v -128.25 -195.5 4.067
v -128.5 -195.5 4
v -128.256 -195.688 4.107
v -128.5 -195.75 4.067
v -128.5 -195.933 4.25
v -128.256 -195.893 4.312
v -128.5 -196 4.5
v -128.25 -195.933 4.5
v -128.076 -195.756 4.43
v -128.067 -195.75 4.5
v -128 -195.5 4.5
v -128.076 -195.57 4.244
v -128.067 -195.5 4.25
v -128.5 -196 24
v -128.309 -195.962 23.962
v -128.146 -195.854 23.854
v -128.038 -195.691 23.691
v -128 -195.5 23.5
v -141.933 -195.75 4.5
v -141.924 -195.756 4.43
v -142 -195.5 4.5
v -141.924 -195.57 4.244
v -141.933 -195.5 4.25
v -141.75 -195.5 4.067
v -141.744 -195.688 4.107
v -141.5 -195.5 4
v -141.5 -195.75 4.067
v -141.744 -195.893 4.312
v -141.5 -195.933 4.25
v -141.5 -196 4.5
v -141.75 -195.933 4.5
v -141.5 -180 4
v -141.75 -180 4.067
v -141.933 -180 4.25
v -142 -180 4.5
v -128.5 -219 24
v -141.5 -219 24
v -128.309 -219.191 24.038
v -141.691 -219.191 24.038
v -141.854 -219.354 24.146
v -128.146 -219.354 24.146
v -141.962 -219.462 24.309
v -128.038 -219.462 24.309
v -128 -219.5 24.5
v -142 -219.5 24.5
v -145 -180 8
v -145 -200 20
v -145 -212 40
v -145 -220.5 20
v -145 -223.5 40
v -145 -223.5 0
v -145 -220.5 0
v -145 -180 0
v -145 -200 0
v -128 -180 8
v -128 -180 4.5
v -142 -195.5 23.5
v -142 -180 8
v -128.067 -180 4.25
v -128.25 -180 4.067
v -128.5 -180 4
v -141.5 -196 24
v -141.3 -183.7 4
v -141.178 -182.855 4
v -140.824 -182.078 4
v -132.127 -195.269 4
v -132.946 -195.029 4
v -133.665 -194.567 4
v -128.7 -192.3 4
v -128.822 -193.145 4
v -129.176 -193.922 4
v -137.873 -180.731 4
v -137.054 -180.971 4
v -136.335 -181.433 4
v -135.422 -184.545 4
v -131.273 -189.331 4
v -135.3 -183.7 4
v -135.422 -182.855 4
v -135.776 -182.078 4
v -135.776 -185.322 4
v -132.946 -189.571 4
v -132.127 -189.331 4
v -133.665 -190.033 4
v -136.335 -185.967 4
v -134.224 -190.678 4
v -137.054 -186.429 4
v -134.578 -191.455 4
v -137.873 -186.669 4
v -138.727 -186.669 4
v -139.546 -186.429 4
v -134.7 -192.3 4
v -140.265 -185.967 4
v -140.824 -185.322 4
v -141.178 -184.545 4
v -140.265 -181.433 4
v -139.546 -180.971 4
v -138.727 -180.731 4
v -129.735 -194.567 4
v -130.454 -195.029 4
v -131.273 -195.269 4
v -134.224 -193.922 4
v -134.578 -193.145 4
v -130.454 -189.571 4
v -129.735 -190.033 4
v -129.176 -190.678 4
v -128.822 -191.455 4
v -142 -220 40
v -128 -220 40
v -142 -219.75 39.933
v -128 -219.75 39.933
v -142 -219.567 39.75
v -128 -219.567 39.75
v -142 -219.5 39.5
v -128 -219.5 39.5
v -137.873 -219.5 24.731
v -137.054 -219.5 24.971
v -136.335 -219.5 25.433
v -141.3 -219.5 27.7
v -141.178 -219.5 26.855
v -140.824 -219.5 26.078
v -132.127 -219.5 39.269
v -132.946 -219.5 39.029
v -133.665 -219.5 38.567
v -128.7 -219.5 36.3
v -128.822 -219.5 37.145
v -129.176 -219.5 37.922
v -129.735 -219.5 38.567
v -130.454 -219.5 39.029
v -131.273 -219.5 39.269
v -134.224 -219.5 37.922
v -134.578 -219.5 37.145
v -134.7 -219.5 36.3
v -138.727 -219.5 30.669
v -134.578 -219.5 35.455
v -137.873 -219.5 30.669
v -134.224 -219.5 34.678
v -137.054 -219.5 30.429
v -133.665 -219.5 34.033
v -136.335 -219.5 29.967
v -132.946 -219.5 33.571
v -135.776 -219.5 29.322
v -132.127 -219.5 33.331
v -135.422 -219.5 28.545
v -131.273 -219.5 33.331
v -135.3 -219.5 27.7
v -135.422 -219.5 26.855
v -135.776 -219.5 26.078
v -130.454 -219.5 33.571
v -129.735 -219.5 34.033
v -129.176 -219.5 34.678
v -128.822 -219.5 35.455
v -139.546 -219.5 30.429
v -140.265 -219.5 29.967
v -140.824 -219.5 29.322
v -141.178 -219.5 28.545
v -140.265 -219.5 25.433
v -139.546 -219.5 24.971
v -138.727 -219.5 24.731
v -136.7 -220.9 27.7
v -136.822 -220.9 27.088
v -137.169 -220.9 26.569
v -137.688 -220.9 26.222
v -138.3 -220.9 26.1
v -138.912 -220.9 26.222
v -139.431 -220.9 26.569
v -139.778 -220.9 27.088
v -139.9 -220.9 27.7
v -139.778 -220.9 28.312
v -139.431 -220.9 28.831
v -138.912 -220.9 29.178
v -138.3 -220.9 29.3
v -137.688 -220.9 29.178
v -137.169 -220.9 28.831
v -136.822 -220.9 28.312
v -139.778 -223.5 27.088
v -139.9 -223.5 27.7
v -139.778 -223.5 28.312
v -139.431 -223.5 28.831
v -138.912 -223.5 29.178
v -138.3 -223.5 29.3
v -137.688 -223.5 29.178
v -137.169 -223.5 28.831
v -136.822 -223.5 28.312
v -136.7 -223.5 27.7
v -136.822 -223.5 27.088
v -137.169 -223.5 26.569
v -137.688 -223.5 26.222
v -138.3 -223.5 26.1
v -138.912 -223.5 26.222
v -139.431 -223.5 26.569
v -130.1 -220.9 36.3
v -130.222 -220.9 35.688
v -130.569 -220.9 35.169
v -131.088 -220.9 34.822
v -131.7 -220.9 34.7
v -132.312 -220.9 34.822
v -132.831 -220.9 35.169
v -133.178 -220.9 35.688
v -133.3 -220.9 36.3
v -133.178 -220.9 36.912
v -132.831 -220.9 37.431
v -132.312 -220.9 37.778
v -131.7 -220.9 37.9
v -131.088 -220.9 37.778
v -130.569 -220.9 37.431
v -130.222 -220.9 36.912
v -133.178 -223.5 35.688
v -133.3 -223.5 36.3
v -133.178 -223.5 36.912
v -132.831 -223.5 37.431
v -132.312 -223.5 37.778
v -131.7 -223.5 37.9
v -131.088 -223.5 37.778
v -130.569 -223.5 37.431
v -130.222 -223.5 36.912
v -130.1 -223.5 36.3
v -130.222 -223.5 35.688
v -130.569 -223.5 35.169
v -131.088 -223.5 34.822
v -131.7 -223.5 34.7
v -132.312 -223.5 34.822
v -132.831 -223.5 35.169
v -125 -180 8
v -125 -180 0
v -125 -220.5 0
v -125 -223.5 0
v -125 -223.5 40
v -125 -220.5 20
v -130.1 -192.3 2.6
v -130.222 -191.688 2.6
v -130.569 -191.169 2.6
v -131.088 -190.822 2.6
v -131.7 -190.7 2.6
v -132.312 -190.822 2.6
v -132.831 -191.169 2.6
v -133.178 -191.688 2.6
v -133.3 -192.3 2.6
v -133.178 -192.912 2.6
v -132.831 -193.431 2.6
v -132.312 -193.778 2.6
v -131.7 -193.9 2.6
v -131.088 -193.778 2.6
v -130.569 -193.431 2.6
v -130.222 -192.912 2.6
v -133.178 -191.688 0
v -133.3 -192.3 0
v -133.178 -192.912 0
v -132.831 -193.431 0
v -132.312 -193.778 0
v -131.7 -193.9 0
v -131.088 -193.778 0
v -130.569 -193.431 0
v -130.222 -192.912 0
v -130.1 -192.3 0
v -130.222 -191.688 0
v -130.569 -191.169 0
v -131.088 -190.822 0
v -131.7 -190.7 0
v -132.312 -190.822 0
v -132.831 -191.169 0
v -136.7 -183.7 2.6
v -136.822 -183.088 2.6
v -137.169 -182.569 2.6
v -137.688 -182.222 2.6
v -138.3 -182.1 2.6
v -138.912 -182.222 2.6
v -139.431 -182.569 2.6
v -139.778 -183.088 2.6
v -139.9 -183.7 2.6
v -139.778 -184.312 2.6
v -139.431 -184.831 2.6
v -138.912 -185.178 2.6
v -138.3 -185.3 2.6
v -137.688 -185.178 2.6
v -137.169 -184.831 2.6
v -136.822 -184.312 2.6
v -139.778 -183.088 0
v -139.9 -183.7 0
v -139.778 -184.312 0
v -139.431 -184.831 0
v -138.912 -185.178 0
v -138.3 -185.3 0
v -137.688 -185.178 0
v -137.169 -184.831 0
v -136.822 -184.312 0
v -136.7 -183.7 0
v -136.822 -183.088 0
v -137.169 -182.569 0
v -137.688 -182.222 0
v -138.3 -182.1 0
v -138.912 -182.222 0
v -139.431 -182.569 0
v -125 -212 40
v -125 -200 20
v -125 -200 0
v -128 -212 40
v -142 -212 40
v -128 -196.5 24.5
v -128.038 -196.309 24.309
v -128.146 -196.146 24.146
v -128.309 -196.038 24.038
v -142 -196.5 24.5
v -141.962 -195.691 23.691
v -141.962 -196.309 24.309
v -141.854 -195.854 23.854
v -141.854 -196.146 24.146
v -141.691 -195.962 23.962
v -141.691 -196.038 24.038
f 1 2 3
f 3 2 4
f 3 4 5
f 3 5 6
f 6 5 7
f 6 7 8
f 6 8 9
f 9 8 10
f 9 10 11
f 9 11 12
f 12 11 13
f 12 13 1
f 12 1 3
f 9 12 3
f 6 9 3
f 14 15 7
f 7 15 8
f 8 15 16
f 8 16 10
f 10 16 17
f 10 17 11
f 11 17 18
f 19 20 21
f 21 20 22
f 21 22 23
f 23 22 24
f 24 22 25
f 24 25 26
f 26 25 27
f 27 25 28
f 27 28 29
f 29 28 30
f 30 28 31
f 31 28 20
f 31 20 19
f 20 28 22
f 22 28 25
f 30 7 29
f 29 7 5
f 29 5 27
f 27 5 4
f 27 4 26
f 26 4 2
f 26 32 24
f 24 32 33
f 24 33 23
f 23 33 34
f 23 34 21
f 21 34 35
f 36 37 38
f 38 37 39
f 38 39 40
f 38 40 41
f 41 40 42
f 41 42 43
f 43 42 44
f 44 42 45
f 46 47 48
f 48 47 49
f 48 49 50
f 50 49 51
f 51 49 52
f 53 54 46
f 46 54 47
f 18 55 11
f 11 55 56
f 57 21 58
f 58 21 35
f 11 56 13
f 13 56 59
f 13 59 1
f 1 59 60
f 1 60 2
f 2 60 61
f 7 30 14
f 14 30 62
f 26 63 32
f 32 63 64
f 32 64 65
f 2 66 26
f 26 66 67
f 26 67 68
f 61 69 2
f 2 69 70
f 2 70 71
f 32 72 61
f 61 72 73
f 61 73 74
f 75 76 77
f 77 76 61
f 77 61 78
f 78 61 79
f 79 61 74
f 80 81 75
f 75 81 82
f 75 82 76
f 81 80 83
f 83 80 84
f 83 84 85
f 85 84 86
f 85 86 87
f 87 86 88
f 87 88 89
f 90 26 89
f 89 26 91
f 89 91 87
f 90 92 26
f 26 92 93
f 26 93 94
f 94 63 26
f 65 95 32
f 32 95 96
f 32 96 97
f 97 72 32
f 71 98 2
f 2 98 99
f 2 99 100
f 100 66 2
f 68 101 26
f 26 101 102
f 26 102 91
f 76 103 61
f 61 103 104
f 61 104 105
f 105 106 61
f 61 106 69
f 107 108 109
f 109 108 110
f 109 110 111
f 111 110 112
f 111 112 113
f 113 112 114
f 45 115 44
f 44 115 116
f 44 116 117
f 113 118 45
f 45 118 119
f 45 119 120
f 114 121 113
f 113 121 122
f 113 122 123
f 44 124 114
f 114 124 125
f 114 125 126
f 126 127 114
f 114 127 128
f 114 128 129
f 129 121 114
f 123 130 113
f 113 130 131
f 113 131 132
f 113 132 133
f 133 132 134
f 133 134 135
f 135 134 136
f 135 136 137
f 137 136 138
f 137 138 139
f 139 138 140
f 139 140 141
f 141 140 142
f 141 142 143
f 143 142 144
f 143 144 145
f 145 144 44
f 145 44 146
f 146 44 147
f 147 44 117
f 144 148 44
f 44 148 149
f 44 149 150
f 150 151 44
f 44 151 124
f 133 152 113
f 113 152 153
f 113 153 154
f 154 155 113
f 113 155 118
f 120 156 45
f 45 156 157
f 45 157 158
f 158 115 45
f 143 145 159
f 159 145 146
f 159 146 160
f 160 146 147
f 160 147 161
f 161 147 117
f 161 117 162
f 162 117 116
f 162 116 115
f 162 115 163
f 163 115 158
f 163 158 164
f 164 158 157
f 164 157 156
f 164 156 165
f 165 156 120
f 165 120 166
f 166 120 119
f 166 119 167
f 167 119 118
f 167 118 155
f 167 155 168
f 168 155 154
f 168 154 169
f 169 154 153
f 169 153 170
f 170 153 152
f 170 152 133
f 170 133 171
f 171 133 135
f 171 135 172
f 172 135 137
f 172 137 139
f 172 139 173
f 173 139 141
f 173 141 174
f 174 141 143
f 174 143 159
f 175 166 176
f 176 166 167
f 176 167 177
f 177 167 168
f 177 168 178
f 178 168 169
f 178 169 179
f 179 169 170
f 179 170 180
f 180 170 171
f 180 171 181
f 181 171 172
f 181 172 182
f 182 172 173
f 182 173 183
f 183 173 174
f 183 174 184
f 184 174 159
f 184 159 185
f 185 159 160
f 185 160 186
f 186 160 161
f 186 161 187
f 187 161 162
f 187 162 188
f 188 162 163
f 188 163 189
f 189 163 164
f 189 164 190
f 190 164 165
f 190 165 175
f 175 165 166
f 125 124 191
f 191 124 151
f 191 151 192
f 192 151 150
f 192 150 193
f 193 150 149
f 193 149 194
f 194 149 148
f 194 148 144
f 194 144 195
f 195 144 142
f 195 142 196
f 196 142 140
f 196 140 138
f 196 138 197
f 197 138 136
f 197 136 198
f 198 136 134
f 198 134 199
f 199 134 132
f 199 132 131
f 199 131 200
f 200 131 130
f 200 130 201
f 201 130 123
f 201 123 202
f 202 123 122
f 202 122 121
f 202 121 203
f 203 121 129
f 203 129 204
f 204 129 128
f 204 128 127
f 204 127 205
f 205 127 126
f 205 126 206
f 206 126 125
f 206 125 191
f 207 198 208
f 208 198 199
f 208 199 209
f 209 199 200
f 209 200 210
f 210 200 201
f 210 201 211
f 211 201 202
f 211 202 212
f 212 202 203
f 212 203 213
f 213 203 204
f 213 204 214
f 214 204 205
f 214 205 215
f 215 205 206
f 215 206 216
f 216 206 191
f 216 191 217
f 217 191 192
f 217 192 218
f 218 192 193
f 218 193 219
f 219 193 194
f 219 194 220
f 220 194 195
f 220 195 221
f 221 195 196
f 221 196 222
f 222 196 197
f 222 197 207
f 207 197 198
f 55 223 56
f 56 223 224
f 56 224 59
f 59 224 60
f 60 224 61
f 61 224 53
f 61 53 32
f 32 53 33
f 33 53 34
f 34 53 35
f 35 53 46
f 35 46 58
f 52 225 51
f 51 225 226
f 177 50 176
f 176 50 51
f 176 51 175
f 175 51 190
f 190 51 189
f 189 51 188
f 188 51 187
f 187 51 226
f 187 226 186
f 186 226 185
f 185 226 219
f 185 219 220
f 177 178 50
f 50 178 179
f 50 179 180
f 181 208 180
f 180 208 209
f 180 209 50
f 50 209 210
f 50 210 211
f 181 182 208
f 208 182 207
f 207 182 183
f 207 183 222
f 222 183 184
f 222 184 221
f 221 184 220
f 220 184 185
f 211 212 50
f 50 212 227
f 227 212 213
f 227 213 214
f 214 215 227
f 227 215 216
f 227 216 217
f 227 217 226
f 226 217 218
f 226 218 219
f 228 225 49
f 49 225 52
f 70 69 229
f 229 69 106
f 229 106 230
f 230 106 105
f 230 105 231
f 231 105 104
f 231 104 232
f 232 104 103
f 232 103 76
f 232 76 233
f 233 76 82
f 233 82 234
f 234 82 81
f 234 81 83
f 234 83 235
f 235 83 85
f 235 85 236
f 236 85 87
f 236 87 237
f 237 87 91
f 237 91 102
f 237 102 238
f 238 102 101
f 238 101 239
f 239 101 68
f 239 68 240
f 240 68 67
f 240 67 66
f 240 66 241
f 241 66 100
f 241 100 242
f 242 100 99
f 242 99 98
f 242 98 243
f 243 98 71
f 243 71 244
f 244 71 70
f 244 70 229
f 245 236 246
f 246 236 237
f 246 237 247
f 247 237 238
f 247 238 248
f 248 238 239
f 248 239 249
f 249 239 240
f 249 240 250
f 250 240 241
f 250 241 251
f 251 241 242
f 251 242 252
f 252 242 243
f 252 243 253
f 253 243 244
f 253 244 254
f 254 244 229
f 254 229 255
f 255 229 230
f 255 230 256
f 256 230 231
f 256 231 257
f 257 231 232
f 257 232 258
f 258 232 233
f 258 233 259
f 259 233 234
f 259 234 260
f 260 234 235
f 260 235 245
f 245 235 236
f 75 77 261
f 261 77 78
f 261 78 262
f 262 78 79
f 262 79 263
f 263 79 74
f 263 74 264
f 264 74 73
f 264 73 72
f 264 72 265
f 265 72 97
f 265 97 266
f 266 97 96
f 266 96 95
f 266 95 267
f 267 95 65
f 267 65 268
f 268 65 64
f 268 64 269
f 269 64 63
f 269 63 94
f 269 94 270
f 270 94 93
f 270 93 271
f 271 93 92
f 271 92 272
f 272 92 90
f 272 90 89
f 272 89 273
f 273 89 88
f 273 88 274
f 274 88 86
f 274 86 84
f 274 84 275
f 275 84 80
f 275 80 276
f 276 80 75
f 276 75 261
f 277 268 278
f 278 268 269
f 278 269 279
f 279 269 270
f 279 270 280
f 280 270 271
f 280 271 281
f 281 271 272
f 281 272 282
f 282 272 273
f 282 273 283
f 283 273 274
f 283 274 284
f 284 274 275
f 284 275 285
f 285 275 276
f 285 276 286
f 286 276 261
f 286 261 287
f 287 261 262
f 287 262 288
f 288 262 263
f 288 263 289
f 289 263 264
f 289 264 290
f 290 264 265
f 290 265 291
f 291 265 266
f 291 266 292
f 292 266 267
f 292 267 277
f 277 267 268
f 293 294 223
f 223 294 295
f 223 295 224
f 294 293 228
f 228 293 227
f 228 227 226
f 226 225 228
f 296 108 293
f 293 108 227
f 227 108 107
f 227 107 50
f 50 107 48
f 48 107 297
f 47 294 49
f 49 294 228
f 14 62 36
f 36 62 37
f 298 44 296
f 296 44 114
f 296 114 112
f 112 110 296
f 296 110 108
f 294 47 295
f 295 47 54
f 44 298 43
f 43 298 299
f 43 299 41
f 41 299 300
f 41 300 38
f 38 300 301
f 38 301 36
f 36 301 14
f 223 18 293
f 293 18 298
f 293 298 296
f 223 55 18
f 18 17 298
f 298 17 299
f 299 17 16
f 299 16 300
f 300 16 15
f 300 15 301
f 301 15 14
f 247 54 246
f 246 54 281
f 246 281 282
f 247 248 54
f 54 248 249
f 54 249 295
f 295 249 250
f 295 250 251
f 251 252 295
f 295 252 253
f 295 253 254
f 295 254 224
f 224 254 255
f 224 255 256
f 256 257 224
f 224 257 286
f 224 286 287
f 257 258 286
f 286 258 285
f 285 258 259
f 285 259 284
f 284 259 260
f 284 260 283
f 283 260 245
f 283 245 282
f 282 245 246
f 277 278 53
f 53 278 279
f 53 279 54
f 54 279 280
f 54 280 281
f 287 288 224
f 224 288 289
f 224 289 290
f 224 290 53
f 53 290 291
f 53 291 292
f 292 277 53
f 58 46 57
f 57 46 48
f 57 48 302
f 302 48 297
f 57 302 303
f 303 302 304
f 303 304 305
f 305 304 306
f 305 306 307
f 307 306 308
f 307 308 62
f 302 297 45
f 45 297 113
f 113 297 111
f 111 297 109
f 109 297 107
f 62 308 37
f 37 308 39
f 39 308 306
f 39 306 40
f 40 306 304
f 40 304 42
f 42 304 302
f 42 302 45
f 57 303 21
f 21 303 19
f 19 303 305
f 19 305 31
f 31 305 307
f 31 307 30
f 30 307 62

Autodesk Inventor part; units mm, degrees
ref_plane "YZ Plane" through (0, 0, 0) normal (1, 0, 0) x (0, 1, 0)
ref_plane "XZ Plane" through (0, 0, 0) normal (0, 1, 0) x (-1, 0, 0)
ref_plane "Plano de trabajo1" through (0, 0, 0) normal (0, 0, 1) x (1, 0, 0)
sketch "Boceto1" plane through (0, 0, 0) normal (0, 0, 1) x (1, 0, 0)
  line L0 (-395, -200.5) -> (-395, -220.5) projected
  line L1 (-395, -220.5) -> (335, -220.5) projected
  line L2 (335, -200.5) -> (335, -220.5) projected
  line L3 (-395, -200.5) -> (335, -200.5) projected
  line L4 (-145, 767.5) -> (-145, -767.5) projected
  line L5 (-145, -767.5) -> (145, -767.5) projected
  line L6 (145, -767.5) -> (145, 767.5) projected
  line L7 (145, 767.5) -> (-145, 767.5) projected
  line L8 (335.5, -200) -> (335.5, -221)
  line L9 (335.5, -221) -> (-395.5, -221)
  line L10 (-395.5, -221) -> (-395.5, -200)
  line L11 (-395.5, -200) -> (335.5, -200)
  line L12 (-145, -200) -> (-145, -180)
  line L13 (-145, -180) -> (-125, -180)
  line L14 (-125, -180) -> (-125, -200)
  line L15 (-125, -200) -> (-145, -200)
  line L16 (-145, -200) -> (-145, -180)
  point P0 (0, 0)
  dimension "d0" = 0.5
  dimension "d1" = 20
  dimension "d2" = 20
  dimension "d3" = 20
extrude "Extrusión1" add sketch "Boceto1" along normal blind 4 contours L4 L13 L14 L11
sketch "Boceto3" plane through (0, 0, 4) normal (0, 0, 1) x (1, 0, 0)
  line L0 (-125, -180) -> (-145, -180) projected
  line L1 (-145, -180) -> (-145, -200) projected
  line L2 (-145, -200) -> (-125, -200) projected
  line L3 (-125, -200) -> (-125, -180) projected
  line L4 (-145, -200) -> (-125, -200)
  line L5 (-125, -200) -> (-125, -196)
  line L6 (-125, -196) -> (-145, -196)
  line L7 (-145, -196) -> (-145, -200)
  point P0 (0, 0)
  dimension "d6" = 4
extrude "Extrusión2" add sketch "Boceto3" along normal blind 20 contours L3 L2 L1 L6
sketch "Boceto4" plane through (-145, -200, 0) normal (0, -1, 0) x (1, 0, 0)
  line L0 (0, 0) -> (20, 0) projected
  line L1 (20, 0) -> (20, 24) projected
  line L2 (0, 24) -> (20, 24) projected
  line L3 (0, 0) -> (0, 24) projected
  line L4 (0, 24) -> (20, 24) projected
  line L5 (20, 24) -> (0, 24)
  line L6 (0, 24) -> (0, 20)
  line L7 (0, 20) -> (20, 20)
  line L8 (20, 20) -> (20, 24)
  point P0 (145, 0)
  dimension "d9" = 4
extrude "Extrusión3" add sketch "Boceto4" along normal blind 20.5 contours L3 L2 L1 L7
sketch "Boceto6" plane through (0, 0, 4) normal (0, 0, 1) x (1, 0, 0)
  line L0 (-145, -196) -> (-125, -196) projected
  line L1 (-125, -196) -> (-125, -180) projected
  line L2 (-125, -180) -> (-145, -180) projected
  line L3 (-145, -180) -> (-145, -196) projected
  line L4 (-145, -180) -> (-142, -180)
  line L5 (-142, -180) -> (-142, -196)
  line L6 (-142, -196) -> (-145, -196)
  line L7 (-145, -196) -> (-145, -180)
  line L8 (-125, -196) -> (-128, -196)
  line L9 (-128, -196) -> (-128, -180)
  line L10 (-128, -180) -> (-125, -180)
  line L11 (-125, -180) -> (-125, -196)
  point P0 (0, 0)
  dimension "d12" = 3
  dimension "d13" = 16
  dimension "d14" = 3
extrude "Extrusión4" add sketch "Boceto6" along normal blind 20 contours L3 L2 L5 L0 | L9 L2 L1 L0
chamfer "Chaflán1" [suppressed]
sketch "Boceto7" plane through (0, 0, 4) normal (0, 0, 1) x (1, 0, 0)
  line L0 (-142, -180) -> (-142, -196) projected
  line L1 (-142, -196) -> (-128, -196) projected
  line L2 (-128, -196) -> (-128, -180) projected
  line L3 (-128, -180) -> (-142, -180) projected
  line L4 (-138.3, -192.3) -> (-138.3, -183.7)
  line L5 (-138.3, -183.7) -> (-131.7, -183.7)
  line L6 (-131.7, -183.7) -> (-131.7, -192.3)
  line L7 (-131.7, -192.3) -> (-138.3, -192.3)
  circle A0 centre (-138.3, -183.7) radius 3
  circle A1 centre (-131.7, -192.3) radius 3
  circle A2 centre (-138.3, -183.7) radius 1.65
  circle A3 centre (-131.7, -192.3) radius 1.65
  point P0 (0, 0)
  dimension "d20" = 3.7
  dimension "d21" = 6
  dimension "d22" = 6
  dimension "d23" = 3.3
  dimension "d24" = 3.3
hole "Agujero1" at (-138.3, -183.7, 4) at (-131.7, -192.3, 4) direction (0, 0, -1) diameter 3.2 end through all countersink diameter 6 countersink angle 90
sketch "Boceto8" plane through (-145, -220.5, 0) normal (0, -1, 0) x (1, 0, 0)
  line L0 (17, 24) -> (17, 4) projected
  line L1 (20, 20) -> (0, 20) projected
  line L2 (0, 0) -> (0, 20) projected
  line L3 (0, 0) -> (20, 0) projected
  line L4 (20, 0) -> (20, 20) projected
  line L5 (20, 20) -> (20, 24) projected
  line L6 (20, 24) -> (0, 24) projected
  line L7 (0, 24) -> (0, 20) projected
  line L8 (0, 20) -> (20, 20) projected
  point P0 (145, 0)
extrude "Extrusión5" add sketch "Boceto8" along normal blind 3
sketch "Boceto9" plane through (0, 0, 24) normal (0, 0, 1) x (1, 0, 0)
  line L0 (-145, -180) -> (-145, -223.5) projected
  line L1 (-125, -223.5) -> (-145, -223.5) projected
  line L2 (-125, -180) -> (-125, -223.5) projected
  line L3 (-128, -196) -> (-142, -196) projected
  line L4 (-145, -223.5) -> (-125, -223.5)
  line L5 (-125, -223.5) -> (-125, -219.5)
  line L6 (-125, -219.5) -> (-145, -219.5)
  line L7 (-145, -219.5) -> (-145, -223.5)
  line L8 (-125, -180) -> (-128, -180) projected
  line L9 (-128, -180) -> (-128, -196) projected
  line L10 (-142, -196) -> (-142, -180) projected
  line L11 (-142, -180) -> (-145, -180) projected
  point P0 (0, 0)
  dimension "d35" = 4
extrude "Extrusión6" add sketch "Boceto9" along normal blind 16 contours L6 L2 L1 L0
sketch "Boceto10" plane through (-145, -219.5, 24) normal (0, 1, 0) x (1, 0, 0)
  line L0 (0, 0) -> (20, 0) projected
  line L1 (0, 0) -> (0, -16) projected
  line L2 (20, -16) -> (0, -16) projected
  line L3 (20, 0) -> (20, -16) projected
  line L4 (20, -16) -> (17, -16)
  line L5 (17, -16) -> (17, 0)
  line L6 (17, 0) -> (20, 0)
  line L7 (20, 0) -> (20, -16)
  line L8 (0, -16) -> (3, -16)
  line L9 (3, -16) -> (3, 0)
  line L10 (3, 0) -> (0, 0)
  line L11 (0, 0) -> (0, -16)
  point P0 (145, 24)
  point P1 (3, -16)
  point P2 (3, 0)
  point P3 (17, -16)
  dimension "d38" = 3
  dimension "d39" = 3
  dimension "d40" = 16
extrude "Extrusión7" add sketch "Boceto10" along normal up to surface (39.5 mm away) contours L0 L9 L2 L1 | L0 L3 L2 L5
chamfer "Chaflán2" [suppressed]
chamfer "Chaflán3" [suppressed]
sketch "Boceto11" plane through (-142, -219.5, 24) normal (0, 1, 0) x (1, 0, 0)
  line L0 (0, 0) -> (0, -16) projected
  line L1 (14, -16) -> (0, -16) projected
  line L2 (14, -16) -> (14, 0) projected
  line L3 (0, 0) -> (14, 0) projected
  line L4 (3.7, -12.3) -> (3.7, -3.7)
  line L5 (3.7, -3.7) -> (10.3, -3.7)
  line L6 (10.3, -3.7) -> (10.3, -12.3)
  line L7 (10.3, -12.3) -> (3.7, -12.3)
  circle A0 centre (3.7, -3.7) radius 1.6
  circle A1 centre (10.3, -12.3) radius 1.6
  point P0 (142, 24)
  dimension "d49" = 3.7
  dimension "d50" = 3.2
  dimension "d51" = 3.2
hole "Agujero2" at (-131.7, -219.5, 36.3) at (-138.3, -219.5, 27.7) direction (0, -1, 0) diameter 3.2 end through all countersink diameter 6 countersink angle 90
fillet "Empalme2" radius 0.5 9 edges at (-135, -219.5, 40) (-142, -207.75, 24) (-128, -207.75, 24) (-135, -219.5, 24) (-142, -196, 14) (-135, -196, 4) (-142, -188, 4) (-128, -188, 4) (-128, -196, 14)
chamfer "Chaflán4" distance 32 angle 45 2 edges at (-143.5, -180, 40) (-126.5, -180, 40)
properties part number "Uniont"
